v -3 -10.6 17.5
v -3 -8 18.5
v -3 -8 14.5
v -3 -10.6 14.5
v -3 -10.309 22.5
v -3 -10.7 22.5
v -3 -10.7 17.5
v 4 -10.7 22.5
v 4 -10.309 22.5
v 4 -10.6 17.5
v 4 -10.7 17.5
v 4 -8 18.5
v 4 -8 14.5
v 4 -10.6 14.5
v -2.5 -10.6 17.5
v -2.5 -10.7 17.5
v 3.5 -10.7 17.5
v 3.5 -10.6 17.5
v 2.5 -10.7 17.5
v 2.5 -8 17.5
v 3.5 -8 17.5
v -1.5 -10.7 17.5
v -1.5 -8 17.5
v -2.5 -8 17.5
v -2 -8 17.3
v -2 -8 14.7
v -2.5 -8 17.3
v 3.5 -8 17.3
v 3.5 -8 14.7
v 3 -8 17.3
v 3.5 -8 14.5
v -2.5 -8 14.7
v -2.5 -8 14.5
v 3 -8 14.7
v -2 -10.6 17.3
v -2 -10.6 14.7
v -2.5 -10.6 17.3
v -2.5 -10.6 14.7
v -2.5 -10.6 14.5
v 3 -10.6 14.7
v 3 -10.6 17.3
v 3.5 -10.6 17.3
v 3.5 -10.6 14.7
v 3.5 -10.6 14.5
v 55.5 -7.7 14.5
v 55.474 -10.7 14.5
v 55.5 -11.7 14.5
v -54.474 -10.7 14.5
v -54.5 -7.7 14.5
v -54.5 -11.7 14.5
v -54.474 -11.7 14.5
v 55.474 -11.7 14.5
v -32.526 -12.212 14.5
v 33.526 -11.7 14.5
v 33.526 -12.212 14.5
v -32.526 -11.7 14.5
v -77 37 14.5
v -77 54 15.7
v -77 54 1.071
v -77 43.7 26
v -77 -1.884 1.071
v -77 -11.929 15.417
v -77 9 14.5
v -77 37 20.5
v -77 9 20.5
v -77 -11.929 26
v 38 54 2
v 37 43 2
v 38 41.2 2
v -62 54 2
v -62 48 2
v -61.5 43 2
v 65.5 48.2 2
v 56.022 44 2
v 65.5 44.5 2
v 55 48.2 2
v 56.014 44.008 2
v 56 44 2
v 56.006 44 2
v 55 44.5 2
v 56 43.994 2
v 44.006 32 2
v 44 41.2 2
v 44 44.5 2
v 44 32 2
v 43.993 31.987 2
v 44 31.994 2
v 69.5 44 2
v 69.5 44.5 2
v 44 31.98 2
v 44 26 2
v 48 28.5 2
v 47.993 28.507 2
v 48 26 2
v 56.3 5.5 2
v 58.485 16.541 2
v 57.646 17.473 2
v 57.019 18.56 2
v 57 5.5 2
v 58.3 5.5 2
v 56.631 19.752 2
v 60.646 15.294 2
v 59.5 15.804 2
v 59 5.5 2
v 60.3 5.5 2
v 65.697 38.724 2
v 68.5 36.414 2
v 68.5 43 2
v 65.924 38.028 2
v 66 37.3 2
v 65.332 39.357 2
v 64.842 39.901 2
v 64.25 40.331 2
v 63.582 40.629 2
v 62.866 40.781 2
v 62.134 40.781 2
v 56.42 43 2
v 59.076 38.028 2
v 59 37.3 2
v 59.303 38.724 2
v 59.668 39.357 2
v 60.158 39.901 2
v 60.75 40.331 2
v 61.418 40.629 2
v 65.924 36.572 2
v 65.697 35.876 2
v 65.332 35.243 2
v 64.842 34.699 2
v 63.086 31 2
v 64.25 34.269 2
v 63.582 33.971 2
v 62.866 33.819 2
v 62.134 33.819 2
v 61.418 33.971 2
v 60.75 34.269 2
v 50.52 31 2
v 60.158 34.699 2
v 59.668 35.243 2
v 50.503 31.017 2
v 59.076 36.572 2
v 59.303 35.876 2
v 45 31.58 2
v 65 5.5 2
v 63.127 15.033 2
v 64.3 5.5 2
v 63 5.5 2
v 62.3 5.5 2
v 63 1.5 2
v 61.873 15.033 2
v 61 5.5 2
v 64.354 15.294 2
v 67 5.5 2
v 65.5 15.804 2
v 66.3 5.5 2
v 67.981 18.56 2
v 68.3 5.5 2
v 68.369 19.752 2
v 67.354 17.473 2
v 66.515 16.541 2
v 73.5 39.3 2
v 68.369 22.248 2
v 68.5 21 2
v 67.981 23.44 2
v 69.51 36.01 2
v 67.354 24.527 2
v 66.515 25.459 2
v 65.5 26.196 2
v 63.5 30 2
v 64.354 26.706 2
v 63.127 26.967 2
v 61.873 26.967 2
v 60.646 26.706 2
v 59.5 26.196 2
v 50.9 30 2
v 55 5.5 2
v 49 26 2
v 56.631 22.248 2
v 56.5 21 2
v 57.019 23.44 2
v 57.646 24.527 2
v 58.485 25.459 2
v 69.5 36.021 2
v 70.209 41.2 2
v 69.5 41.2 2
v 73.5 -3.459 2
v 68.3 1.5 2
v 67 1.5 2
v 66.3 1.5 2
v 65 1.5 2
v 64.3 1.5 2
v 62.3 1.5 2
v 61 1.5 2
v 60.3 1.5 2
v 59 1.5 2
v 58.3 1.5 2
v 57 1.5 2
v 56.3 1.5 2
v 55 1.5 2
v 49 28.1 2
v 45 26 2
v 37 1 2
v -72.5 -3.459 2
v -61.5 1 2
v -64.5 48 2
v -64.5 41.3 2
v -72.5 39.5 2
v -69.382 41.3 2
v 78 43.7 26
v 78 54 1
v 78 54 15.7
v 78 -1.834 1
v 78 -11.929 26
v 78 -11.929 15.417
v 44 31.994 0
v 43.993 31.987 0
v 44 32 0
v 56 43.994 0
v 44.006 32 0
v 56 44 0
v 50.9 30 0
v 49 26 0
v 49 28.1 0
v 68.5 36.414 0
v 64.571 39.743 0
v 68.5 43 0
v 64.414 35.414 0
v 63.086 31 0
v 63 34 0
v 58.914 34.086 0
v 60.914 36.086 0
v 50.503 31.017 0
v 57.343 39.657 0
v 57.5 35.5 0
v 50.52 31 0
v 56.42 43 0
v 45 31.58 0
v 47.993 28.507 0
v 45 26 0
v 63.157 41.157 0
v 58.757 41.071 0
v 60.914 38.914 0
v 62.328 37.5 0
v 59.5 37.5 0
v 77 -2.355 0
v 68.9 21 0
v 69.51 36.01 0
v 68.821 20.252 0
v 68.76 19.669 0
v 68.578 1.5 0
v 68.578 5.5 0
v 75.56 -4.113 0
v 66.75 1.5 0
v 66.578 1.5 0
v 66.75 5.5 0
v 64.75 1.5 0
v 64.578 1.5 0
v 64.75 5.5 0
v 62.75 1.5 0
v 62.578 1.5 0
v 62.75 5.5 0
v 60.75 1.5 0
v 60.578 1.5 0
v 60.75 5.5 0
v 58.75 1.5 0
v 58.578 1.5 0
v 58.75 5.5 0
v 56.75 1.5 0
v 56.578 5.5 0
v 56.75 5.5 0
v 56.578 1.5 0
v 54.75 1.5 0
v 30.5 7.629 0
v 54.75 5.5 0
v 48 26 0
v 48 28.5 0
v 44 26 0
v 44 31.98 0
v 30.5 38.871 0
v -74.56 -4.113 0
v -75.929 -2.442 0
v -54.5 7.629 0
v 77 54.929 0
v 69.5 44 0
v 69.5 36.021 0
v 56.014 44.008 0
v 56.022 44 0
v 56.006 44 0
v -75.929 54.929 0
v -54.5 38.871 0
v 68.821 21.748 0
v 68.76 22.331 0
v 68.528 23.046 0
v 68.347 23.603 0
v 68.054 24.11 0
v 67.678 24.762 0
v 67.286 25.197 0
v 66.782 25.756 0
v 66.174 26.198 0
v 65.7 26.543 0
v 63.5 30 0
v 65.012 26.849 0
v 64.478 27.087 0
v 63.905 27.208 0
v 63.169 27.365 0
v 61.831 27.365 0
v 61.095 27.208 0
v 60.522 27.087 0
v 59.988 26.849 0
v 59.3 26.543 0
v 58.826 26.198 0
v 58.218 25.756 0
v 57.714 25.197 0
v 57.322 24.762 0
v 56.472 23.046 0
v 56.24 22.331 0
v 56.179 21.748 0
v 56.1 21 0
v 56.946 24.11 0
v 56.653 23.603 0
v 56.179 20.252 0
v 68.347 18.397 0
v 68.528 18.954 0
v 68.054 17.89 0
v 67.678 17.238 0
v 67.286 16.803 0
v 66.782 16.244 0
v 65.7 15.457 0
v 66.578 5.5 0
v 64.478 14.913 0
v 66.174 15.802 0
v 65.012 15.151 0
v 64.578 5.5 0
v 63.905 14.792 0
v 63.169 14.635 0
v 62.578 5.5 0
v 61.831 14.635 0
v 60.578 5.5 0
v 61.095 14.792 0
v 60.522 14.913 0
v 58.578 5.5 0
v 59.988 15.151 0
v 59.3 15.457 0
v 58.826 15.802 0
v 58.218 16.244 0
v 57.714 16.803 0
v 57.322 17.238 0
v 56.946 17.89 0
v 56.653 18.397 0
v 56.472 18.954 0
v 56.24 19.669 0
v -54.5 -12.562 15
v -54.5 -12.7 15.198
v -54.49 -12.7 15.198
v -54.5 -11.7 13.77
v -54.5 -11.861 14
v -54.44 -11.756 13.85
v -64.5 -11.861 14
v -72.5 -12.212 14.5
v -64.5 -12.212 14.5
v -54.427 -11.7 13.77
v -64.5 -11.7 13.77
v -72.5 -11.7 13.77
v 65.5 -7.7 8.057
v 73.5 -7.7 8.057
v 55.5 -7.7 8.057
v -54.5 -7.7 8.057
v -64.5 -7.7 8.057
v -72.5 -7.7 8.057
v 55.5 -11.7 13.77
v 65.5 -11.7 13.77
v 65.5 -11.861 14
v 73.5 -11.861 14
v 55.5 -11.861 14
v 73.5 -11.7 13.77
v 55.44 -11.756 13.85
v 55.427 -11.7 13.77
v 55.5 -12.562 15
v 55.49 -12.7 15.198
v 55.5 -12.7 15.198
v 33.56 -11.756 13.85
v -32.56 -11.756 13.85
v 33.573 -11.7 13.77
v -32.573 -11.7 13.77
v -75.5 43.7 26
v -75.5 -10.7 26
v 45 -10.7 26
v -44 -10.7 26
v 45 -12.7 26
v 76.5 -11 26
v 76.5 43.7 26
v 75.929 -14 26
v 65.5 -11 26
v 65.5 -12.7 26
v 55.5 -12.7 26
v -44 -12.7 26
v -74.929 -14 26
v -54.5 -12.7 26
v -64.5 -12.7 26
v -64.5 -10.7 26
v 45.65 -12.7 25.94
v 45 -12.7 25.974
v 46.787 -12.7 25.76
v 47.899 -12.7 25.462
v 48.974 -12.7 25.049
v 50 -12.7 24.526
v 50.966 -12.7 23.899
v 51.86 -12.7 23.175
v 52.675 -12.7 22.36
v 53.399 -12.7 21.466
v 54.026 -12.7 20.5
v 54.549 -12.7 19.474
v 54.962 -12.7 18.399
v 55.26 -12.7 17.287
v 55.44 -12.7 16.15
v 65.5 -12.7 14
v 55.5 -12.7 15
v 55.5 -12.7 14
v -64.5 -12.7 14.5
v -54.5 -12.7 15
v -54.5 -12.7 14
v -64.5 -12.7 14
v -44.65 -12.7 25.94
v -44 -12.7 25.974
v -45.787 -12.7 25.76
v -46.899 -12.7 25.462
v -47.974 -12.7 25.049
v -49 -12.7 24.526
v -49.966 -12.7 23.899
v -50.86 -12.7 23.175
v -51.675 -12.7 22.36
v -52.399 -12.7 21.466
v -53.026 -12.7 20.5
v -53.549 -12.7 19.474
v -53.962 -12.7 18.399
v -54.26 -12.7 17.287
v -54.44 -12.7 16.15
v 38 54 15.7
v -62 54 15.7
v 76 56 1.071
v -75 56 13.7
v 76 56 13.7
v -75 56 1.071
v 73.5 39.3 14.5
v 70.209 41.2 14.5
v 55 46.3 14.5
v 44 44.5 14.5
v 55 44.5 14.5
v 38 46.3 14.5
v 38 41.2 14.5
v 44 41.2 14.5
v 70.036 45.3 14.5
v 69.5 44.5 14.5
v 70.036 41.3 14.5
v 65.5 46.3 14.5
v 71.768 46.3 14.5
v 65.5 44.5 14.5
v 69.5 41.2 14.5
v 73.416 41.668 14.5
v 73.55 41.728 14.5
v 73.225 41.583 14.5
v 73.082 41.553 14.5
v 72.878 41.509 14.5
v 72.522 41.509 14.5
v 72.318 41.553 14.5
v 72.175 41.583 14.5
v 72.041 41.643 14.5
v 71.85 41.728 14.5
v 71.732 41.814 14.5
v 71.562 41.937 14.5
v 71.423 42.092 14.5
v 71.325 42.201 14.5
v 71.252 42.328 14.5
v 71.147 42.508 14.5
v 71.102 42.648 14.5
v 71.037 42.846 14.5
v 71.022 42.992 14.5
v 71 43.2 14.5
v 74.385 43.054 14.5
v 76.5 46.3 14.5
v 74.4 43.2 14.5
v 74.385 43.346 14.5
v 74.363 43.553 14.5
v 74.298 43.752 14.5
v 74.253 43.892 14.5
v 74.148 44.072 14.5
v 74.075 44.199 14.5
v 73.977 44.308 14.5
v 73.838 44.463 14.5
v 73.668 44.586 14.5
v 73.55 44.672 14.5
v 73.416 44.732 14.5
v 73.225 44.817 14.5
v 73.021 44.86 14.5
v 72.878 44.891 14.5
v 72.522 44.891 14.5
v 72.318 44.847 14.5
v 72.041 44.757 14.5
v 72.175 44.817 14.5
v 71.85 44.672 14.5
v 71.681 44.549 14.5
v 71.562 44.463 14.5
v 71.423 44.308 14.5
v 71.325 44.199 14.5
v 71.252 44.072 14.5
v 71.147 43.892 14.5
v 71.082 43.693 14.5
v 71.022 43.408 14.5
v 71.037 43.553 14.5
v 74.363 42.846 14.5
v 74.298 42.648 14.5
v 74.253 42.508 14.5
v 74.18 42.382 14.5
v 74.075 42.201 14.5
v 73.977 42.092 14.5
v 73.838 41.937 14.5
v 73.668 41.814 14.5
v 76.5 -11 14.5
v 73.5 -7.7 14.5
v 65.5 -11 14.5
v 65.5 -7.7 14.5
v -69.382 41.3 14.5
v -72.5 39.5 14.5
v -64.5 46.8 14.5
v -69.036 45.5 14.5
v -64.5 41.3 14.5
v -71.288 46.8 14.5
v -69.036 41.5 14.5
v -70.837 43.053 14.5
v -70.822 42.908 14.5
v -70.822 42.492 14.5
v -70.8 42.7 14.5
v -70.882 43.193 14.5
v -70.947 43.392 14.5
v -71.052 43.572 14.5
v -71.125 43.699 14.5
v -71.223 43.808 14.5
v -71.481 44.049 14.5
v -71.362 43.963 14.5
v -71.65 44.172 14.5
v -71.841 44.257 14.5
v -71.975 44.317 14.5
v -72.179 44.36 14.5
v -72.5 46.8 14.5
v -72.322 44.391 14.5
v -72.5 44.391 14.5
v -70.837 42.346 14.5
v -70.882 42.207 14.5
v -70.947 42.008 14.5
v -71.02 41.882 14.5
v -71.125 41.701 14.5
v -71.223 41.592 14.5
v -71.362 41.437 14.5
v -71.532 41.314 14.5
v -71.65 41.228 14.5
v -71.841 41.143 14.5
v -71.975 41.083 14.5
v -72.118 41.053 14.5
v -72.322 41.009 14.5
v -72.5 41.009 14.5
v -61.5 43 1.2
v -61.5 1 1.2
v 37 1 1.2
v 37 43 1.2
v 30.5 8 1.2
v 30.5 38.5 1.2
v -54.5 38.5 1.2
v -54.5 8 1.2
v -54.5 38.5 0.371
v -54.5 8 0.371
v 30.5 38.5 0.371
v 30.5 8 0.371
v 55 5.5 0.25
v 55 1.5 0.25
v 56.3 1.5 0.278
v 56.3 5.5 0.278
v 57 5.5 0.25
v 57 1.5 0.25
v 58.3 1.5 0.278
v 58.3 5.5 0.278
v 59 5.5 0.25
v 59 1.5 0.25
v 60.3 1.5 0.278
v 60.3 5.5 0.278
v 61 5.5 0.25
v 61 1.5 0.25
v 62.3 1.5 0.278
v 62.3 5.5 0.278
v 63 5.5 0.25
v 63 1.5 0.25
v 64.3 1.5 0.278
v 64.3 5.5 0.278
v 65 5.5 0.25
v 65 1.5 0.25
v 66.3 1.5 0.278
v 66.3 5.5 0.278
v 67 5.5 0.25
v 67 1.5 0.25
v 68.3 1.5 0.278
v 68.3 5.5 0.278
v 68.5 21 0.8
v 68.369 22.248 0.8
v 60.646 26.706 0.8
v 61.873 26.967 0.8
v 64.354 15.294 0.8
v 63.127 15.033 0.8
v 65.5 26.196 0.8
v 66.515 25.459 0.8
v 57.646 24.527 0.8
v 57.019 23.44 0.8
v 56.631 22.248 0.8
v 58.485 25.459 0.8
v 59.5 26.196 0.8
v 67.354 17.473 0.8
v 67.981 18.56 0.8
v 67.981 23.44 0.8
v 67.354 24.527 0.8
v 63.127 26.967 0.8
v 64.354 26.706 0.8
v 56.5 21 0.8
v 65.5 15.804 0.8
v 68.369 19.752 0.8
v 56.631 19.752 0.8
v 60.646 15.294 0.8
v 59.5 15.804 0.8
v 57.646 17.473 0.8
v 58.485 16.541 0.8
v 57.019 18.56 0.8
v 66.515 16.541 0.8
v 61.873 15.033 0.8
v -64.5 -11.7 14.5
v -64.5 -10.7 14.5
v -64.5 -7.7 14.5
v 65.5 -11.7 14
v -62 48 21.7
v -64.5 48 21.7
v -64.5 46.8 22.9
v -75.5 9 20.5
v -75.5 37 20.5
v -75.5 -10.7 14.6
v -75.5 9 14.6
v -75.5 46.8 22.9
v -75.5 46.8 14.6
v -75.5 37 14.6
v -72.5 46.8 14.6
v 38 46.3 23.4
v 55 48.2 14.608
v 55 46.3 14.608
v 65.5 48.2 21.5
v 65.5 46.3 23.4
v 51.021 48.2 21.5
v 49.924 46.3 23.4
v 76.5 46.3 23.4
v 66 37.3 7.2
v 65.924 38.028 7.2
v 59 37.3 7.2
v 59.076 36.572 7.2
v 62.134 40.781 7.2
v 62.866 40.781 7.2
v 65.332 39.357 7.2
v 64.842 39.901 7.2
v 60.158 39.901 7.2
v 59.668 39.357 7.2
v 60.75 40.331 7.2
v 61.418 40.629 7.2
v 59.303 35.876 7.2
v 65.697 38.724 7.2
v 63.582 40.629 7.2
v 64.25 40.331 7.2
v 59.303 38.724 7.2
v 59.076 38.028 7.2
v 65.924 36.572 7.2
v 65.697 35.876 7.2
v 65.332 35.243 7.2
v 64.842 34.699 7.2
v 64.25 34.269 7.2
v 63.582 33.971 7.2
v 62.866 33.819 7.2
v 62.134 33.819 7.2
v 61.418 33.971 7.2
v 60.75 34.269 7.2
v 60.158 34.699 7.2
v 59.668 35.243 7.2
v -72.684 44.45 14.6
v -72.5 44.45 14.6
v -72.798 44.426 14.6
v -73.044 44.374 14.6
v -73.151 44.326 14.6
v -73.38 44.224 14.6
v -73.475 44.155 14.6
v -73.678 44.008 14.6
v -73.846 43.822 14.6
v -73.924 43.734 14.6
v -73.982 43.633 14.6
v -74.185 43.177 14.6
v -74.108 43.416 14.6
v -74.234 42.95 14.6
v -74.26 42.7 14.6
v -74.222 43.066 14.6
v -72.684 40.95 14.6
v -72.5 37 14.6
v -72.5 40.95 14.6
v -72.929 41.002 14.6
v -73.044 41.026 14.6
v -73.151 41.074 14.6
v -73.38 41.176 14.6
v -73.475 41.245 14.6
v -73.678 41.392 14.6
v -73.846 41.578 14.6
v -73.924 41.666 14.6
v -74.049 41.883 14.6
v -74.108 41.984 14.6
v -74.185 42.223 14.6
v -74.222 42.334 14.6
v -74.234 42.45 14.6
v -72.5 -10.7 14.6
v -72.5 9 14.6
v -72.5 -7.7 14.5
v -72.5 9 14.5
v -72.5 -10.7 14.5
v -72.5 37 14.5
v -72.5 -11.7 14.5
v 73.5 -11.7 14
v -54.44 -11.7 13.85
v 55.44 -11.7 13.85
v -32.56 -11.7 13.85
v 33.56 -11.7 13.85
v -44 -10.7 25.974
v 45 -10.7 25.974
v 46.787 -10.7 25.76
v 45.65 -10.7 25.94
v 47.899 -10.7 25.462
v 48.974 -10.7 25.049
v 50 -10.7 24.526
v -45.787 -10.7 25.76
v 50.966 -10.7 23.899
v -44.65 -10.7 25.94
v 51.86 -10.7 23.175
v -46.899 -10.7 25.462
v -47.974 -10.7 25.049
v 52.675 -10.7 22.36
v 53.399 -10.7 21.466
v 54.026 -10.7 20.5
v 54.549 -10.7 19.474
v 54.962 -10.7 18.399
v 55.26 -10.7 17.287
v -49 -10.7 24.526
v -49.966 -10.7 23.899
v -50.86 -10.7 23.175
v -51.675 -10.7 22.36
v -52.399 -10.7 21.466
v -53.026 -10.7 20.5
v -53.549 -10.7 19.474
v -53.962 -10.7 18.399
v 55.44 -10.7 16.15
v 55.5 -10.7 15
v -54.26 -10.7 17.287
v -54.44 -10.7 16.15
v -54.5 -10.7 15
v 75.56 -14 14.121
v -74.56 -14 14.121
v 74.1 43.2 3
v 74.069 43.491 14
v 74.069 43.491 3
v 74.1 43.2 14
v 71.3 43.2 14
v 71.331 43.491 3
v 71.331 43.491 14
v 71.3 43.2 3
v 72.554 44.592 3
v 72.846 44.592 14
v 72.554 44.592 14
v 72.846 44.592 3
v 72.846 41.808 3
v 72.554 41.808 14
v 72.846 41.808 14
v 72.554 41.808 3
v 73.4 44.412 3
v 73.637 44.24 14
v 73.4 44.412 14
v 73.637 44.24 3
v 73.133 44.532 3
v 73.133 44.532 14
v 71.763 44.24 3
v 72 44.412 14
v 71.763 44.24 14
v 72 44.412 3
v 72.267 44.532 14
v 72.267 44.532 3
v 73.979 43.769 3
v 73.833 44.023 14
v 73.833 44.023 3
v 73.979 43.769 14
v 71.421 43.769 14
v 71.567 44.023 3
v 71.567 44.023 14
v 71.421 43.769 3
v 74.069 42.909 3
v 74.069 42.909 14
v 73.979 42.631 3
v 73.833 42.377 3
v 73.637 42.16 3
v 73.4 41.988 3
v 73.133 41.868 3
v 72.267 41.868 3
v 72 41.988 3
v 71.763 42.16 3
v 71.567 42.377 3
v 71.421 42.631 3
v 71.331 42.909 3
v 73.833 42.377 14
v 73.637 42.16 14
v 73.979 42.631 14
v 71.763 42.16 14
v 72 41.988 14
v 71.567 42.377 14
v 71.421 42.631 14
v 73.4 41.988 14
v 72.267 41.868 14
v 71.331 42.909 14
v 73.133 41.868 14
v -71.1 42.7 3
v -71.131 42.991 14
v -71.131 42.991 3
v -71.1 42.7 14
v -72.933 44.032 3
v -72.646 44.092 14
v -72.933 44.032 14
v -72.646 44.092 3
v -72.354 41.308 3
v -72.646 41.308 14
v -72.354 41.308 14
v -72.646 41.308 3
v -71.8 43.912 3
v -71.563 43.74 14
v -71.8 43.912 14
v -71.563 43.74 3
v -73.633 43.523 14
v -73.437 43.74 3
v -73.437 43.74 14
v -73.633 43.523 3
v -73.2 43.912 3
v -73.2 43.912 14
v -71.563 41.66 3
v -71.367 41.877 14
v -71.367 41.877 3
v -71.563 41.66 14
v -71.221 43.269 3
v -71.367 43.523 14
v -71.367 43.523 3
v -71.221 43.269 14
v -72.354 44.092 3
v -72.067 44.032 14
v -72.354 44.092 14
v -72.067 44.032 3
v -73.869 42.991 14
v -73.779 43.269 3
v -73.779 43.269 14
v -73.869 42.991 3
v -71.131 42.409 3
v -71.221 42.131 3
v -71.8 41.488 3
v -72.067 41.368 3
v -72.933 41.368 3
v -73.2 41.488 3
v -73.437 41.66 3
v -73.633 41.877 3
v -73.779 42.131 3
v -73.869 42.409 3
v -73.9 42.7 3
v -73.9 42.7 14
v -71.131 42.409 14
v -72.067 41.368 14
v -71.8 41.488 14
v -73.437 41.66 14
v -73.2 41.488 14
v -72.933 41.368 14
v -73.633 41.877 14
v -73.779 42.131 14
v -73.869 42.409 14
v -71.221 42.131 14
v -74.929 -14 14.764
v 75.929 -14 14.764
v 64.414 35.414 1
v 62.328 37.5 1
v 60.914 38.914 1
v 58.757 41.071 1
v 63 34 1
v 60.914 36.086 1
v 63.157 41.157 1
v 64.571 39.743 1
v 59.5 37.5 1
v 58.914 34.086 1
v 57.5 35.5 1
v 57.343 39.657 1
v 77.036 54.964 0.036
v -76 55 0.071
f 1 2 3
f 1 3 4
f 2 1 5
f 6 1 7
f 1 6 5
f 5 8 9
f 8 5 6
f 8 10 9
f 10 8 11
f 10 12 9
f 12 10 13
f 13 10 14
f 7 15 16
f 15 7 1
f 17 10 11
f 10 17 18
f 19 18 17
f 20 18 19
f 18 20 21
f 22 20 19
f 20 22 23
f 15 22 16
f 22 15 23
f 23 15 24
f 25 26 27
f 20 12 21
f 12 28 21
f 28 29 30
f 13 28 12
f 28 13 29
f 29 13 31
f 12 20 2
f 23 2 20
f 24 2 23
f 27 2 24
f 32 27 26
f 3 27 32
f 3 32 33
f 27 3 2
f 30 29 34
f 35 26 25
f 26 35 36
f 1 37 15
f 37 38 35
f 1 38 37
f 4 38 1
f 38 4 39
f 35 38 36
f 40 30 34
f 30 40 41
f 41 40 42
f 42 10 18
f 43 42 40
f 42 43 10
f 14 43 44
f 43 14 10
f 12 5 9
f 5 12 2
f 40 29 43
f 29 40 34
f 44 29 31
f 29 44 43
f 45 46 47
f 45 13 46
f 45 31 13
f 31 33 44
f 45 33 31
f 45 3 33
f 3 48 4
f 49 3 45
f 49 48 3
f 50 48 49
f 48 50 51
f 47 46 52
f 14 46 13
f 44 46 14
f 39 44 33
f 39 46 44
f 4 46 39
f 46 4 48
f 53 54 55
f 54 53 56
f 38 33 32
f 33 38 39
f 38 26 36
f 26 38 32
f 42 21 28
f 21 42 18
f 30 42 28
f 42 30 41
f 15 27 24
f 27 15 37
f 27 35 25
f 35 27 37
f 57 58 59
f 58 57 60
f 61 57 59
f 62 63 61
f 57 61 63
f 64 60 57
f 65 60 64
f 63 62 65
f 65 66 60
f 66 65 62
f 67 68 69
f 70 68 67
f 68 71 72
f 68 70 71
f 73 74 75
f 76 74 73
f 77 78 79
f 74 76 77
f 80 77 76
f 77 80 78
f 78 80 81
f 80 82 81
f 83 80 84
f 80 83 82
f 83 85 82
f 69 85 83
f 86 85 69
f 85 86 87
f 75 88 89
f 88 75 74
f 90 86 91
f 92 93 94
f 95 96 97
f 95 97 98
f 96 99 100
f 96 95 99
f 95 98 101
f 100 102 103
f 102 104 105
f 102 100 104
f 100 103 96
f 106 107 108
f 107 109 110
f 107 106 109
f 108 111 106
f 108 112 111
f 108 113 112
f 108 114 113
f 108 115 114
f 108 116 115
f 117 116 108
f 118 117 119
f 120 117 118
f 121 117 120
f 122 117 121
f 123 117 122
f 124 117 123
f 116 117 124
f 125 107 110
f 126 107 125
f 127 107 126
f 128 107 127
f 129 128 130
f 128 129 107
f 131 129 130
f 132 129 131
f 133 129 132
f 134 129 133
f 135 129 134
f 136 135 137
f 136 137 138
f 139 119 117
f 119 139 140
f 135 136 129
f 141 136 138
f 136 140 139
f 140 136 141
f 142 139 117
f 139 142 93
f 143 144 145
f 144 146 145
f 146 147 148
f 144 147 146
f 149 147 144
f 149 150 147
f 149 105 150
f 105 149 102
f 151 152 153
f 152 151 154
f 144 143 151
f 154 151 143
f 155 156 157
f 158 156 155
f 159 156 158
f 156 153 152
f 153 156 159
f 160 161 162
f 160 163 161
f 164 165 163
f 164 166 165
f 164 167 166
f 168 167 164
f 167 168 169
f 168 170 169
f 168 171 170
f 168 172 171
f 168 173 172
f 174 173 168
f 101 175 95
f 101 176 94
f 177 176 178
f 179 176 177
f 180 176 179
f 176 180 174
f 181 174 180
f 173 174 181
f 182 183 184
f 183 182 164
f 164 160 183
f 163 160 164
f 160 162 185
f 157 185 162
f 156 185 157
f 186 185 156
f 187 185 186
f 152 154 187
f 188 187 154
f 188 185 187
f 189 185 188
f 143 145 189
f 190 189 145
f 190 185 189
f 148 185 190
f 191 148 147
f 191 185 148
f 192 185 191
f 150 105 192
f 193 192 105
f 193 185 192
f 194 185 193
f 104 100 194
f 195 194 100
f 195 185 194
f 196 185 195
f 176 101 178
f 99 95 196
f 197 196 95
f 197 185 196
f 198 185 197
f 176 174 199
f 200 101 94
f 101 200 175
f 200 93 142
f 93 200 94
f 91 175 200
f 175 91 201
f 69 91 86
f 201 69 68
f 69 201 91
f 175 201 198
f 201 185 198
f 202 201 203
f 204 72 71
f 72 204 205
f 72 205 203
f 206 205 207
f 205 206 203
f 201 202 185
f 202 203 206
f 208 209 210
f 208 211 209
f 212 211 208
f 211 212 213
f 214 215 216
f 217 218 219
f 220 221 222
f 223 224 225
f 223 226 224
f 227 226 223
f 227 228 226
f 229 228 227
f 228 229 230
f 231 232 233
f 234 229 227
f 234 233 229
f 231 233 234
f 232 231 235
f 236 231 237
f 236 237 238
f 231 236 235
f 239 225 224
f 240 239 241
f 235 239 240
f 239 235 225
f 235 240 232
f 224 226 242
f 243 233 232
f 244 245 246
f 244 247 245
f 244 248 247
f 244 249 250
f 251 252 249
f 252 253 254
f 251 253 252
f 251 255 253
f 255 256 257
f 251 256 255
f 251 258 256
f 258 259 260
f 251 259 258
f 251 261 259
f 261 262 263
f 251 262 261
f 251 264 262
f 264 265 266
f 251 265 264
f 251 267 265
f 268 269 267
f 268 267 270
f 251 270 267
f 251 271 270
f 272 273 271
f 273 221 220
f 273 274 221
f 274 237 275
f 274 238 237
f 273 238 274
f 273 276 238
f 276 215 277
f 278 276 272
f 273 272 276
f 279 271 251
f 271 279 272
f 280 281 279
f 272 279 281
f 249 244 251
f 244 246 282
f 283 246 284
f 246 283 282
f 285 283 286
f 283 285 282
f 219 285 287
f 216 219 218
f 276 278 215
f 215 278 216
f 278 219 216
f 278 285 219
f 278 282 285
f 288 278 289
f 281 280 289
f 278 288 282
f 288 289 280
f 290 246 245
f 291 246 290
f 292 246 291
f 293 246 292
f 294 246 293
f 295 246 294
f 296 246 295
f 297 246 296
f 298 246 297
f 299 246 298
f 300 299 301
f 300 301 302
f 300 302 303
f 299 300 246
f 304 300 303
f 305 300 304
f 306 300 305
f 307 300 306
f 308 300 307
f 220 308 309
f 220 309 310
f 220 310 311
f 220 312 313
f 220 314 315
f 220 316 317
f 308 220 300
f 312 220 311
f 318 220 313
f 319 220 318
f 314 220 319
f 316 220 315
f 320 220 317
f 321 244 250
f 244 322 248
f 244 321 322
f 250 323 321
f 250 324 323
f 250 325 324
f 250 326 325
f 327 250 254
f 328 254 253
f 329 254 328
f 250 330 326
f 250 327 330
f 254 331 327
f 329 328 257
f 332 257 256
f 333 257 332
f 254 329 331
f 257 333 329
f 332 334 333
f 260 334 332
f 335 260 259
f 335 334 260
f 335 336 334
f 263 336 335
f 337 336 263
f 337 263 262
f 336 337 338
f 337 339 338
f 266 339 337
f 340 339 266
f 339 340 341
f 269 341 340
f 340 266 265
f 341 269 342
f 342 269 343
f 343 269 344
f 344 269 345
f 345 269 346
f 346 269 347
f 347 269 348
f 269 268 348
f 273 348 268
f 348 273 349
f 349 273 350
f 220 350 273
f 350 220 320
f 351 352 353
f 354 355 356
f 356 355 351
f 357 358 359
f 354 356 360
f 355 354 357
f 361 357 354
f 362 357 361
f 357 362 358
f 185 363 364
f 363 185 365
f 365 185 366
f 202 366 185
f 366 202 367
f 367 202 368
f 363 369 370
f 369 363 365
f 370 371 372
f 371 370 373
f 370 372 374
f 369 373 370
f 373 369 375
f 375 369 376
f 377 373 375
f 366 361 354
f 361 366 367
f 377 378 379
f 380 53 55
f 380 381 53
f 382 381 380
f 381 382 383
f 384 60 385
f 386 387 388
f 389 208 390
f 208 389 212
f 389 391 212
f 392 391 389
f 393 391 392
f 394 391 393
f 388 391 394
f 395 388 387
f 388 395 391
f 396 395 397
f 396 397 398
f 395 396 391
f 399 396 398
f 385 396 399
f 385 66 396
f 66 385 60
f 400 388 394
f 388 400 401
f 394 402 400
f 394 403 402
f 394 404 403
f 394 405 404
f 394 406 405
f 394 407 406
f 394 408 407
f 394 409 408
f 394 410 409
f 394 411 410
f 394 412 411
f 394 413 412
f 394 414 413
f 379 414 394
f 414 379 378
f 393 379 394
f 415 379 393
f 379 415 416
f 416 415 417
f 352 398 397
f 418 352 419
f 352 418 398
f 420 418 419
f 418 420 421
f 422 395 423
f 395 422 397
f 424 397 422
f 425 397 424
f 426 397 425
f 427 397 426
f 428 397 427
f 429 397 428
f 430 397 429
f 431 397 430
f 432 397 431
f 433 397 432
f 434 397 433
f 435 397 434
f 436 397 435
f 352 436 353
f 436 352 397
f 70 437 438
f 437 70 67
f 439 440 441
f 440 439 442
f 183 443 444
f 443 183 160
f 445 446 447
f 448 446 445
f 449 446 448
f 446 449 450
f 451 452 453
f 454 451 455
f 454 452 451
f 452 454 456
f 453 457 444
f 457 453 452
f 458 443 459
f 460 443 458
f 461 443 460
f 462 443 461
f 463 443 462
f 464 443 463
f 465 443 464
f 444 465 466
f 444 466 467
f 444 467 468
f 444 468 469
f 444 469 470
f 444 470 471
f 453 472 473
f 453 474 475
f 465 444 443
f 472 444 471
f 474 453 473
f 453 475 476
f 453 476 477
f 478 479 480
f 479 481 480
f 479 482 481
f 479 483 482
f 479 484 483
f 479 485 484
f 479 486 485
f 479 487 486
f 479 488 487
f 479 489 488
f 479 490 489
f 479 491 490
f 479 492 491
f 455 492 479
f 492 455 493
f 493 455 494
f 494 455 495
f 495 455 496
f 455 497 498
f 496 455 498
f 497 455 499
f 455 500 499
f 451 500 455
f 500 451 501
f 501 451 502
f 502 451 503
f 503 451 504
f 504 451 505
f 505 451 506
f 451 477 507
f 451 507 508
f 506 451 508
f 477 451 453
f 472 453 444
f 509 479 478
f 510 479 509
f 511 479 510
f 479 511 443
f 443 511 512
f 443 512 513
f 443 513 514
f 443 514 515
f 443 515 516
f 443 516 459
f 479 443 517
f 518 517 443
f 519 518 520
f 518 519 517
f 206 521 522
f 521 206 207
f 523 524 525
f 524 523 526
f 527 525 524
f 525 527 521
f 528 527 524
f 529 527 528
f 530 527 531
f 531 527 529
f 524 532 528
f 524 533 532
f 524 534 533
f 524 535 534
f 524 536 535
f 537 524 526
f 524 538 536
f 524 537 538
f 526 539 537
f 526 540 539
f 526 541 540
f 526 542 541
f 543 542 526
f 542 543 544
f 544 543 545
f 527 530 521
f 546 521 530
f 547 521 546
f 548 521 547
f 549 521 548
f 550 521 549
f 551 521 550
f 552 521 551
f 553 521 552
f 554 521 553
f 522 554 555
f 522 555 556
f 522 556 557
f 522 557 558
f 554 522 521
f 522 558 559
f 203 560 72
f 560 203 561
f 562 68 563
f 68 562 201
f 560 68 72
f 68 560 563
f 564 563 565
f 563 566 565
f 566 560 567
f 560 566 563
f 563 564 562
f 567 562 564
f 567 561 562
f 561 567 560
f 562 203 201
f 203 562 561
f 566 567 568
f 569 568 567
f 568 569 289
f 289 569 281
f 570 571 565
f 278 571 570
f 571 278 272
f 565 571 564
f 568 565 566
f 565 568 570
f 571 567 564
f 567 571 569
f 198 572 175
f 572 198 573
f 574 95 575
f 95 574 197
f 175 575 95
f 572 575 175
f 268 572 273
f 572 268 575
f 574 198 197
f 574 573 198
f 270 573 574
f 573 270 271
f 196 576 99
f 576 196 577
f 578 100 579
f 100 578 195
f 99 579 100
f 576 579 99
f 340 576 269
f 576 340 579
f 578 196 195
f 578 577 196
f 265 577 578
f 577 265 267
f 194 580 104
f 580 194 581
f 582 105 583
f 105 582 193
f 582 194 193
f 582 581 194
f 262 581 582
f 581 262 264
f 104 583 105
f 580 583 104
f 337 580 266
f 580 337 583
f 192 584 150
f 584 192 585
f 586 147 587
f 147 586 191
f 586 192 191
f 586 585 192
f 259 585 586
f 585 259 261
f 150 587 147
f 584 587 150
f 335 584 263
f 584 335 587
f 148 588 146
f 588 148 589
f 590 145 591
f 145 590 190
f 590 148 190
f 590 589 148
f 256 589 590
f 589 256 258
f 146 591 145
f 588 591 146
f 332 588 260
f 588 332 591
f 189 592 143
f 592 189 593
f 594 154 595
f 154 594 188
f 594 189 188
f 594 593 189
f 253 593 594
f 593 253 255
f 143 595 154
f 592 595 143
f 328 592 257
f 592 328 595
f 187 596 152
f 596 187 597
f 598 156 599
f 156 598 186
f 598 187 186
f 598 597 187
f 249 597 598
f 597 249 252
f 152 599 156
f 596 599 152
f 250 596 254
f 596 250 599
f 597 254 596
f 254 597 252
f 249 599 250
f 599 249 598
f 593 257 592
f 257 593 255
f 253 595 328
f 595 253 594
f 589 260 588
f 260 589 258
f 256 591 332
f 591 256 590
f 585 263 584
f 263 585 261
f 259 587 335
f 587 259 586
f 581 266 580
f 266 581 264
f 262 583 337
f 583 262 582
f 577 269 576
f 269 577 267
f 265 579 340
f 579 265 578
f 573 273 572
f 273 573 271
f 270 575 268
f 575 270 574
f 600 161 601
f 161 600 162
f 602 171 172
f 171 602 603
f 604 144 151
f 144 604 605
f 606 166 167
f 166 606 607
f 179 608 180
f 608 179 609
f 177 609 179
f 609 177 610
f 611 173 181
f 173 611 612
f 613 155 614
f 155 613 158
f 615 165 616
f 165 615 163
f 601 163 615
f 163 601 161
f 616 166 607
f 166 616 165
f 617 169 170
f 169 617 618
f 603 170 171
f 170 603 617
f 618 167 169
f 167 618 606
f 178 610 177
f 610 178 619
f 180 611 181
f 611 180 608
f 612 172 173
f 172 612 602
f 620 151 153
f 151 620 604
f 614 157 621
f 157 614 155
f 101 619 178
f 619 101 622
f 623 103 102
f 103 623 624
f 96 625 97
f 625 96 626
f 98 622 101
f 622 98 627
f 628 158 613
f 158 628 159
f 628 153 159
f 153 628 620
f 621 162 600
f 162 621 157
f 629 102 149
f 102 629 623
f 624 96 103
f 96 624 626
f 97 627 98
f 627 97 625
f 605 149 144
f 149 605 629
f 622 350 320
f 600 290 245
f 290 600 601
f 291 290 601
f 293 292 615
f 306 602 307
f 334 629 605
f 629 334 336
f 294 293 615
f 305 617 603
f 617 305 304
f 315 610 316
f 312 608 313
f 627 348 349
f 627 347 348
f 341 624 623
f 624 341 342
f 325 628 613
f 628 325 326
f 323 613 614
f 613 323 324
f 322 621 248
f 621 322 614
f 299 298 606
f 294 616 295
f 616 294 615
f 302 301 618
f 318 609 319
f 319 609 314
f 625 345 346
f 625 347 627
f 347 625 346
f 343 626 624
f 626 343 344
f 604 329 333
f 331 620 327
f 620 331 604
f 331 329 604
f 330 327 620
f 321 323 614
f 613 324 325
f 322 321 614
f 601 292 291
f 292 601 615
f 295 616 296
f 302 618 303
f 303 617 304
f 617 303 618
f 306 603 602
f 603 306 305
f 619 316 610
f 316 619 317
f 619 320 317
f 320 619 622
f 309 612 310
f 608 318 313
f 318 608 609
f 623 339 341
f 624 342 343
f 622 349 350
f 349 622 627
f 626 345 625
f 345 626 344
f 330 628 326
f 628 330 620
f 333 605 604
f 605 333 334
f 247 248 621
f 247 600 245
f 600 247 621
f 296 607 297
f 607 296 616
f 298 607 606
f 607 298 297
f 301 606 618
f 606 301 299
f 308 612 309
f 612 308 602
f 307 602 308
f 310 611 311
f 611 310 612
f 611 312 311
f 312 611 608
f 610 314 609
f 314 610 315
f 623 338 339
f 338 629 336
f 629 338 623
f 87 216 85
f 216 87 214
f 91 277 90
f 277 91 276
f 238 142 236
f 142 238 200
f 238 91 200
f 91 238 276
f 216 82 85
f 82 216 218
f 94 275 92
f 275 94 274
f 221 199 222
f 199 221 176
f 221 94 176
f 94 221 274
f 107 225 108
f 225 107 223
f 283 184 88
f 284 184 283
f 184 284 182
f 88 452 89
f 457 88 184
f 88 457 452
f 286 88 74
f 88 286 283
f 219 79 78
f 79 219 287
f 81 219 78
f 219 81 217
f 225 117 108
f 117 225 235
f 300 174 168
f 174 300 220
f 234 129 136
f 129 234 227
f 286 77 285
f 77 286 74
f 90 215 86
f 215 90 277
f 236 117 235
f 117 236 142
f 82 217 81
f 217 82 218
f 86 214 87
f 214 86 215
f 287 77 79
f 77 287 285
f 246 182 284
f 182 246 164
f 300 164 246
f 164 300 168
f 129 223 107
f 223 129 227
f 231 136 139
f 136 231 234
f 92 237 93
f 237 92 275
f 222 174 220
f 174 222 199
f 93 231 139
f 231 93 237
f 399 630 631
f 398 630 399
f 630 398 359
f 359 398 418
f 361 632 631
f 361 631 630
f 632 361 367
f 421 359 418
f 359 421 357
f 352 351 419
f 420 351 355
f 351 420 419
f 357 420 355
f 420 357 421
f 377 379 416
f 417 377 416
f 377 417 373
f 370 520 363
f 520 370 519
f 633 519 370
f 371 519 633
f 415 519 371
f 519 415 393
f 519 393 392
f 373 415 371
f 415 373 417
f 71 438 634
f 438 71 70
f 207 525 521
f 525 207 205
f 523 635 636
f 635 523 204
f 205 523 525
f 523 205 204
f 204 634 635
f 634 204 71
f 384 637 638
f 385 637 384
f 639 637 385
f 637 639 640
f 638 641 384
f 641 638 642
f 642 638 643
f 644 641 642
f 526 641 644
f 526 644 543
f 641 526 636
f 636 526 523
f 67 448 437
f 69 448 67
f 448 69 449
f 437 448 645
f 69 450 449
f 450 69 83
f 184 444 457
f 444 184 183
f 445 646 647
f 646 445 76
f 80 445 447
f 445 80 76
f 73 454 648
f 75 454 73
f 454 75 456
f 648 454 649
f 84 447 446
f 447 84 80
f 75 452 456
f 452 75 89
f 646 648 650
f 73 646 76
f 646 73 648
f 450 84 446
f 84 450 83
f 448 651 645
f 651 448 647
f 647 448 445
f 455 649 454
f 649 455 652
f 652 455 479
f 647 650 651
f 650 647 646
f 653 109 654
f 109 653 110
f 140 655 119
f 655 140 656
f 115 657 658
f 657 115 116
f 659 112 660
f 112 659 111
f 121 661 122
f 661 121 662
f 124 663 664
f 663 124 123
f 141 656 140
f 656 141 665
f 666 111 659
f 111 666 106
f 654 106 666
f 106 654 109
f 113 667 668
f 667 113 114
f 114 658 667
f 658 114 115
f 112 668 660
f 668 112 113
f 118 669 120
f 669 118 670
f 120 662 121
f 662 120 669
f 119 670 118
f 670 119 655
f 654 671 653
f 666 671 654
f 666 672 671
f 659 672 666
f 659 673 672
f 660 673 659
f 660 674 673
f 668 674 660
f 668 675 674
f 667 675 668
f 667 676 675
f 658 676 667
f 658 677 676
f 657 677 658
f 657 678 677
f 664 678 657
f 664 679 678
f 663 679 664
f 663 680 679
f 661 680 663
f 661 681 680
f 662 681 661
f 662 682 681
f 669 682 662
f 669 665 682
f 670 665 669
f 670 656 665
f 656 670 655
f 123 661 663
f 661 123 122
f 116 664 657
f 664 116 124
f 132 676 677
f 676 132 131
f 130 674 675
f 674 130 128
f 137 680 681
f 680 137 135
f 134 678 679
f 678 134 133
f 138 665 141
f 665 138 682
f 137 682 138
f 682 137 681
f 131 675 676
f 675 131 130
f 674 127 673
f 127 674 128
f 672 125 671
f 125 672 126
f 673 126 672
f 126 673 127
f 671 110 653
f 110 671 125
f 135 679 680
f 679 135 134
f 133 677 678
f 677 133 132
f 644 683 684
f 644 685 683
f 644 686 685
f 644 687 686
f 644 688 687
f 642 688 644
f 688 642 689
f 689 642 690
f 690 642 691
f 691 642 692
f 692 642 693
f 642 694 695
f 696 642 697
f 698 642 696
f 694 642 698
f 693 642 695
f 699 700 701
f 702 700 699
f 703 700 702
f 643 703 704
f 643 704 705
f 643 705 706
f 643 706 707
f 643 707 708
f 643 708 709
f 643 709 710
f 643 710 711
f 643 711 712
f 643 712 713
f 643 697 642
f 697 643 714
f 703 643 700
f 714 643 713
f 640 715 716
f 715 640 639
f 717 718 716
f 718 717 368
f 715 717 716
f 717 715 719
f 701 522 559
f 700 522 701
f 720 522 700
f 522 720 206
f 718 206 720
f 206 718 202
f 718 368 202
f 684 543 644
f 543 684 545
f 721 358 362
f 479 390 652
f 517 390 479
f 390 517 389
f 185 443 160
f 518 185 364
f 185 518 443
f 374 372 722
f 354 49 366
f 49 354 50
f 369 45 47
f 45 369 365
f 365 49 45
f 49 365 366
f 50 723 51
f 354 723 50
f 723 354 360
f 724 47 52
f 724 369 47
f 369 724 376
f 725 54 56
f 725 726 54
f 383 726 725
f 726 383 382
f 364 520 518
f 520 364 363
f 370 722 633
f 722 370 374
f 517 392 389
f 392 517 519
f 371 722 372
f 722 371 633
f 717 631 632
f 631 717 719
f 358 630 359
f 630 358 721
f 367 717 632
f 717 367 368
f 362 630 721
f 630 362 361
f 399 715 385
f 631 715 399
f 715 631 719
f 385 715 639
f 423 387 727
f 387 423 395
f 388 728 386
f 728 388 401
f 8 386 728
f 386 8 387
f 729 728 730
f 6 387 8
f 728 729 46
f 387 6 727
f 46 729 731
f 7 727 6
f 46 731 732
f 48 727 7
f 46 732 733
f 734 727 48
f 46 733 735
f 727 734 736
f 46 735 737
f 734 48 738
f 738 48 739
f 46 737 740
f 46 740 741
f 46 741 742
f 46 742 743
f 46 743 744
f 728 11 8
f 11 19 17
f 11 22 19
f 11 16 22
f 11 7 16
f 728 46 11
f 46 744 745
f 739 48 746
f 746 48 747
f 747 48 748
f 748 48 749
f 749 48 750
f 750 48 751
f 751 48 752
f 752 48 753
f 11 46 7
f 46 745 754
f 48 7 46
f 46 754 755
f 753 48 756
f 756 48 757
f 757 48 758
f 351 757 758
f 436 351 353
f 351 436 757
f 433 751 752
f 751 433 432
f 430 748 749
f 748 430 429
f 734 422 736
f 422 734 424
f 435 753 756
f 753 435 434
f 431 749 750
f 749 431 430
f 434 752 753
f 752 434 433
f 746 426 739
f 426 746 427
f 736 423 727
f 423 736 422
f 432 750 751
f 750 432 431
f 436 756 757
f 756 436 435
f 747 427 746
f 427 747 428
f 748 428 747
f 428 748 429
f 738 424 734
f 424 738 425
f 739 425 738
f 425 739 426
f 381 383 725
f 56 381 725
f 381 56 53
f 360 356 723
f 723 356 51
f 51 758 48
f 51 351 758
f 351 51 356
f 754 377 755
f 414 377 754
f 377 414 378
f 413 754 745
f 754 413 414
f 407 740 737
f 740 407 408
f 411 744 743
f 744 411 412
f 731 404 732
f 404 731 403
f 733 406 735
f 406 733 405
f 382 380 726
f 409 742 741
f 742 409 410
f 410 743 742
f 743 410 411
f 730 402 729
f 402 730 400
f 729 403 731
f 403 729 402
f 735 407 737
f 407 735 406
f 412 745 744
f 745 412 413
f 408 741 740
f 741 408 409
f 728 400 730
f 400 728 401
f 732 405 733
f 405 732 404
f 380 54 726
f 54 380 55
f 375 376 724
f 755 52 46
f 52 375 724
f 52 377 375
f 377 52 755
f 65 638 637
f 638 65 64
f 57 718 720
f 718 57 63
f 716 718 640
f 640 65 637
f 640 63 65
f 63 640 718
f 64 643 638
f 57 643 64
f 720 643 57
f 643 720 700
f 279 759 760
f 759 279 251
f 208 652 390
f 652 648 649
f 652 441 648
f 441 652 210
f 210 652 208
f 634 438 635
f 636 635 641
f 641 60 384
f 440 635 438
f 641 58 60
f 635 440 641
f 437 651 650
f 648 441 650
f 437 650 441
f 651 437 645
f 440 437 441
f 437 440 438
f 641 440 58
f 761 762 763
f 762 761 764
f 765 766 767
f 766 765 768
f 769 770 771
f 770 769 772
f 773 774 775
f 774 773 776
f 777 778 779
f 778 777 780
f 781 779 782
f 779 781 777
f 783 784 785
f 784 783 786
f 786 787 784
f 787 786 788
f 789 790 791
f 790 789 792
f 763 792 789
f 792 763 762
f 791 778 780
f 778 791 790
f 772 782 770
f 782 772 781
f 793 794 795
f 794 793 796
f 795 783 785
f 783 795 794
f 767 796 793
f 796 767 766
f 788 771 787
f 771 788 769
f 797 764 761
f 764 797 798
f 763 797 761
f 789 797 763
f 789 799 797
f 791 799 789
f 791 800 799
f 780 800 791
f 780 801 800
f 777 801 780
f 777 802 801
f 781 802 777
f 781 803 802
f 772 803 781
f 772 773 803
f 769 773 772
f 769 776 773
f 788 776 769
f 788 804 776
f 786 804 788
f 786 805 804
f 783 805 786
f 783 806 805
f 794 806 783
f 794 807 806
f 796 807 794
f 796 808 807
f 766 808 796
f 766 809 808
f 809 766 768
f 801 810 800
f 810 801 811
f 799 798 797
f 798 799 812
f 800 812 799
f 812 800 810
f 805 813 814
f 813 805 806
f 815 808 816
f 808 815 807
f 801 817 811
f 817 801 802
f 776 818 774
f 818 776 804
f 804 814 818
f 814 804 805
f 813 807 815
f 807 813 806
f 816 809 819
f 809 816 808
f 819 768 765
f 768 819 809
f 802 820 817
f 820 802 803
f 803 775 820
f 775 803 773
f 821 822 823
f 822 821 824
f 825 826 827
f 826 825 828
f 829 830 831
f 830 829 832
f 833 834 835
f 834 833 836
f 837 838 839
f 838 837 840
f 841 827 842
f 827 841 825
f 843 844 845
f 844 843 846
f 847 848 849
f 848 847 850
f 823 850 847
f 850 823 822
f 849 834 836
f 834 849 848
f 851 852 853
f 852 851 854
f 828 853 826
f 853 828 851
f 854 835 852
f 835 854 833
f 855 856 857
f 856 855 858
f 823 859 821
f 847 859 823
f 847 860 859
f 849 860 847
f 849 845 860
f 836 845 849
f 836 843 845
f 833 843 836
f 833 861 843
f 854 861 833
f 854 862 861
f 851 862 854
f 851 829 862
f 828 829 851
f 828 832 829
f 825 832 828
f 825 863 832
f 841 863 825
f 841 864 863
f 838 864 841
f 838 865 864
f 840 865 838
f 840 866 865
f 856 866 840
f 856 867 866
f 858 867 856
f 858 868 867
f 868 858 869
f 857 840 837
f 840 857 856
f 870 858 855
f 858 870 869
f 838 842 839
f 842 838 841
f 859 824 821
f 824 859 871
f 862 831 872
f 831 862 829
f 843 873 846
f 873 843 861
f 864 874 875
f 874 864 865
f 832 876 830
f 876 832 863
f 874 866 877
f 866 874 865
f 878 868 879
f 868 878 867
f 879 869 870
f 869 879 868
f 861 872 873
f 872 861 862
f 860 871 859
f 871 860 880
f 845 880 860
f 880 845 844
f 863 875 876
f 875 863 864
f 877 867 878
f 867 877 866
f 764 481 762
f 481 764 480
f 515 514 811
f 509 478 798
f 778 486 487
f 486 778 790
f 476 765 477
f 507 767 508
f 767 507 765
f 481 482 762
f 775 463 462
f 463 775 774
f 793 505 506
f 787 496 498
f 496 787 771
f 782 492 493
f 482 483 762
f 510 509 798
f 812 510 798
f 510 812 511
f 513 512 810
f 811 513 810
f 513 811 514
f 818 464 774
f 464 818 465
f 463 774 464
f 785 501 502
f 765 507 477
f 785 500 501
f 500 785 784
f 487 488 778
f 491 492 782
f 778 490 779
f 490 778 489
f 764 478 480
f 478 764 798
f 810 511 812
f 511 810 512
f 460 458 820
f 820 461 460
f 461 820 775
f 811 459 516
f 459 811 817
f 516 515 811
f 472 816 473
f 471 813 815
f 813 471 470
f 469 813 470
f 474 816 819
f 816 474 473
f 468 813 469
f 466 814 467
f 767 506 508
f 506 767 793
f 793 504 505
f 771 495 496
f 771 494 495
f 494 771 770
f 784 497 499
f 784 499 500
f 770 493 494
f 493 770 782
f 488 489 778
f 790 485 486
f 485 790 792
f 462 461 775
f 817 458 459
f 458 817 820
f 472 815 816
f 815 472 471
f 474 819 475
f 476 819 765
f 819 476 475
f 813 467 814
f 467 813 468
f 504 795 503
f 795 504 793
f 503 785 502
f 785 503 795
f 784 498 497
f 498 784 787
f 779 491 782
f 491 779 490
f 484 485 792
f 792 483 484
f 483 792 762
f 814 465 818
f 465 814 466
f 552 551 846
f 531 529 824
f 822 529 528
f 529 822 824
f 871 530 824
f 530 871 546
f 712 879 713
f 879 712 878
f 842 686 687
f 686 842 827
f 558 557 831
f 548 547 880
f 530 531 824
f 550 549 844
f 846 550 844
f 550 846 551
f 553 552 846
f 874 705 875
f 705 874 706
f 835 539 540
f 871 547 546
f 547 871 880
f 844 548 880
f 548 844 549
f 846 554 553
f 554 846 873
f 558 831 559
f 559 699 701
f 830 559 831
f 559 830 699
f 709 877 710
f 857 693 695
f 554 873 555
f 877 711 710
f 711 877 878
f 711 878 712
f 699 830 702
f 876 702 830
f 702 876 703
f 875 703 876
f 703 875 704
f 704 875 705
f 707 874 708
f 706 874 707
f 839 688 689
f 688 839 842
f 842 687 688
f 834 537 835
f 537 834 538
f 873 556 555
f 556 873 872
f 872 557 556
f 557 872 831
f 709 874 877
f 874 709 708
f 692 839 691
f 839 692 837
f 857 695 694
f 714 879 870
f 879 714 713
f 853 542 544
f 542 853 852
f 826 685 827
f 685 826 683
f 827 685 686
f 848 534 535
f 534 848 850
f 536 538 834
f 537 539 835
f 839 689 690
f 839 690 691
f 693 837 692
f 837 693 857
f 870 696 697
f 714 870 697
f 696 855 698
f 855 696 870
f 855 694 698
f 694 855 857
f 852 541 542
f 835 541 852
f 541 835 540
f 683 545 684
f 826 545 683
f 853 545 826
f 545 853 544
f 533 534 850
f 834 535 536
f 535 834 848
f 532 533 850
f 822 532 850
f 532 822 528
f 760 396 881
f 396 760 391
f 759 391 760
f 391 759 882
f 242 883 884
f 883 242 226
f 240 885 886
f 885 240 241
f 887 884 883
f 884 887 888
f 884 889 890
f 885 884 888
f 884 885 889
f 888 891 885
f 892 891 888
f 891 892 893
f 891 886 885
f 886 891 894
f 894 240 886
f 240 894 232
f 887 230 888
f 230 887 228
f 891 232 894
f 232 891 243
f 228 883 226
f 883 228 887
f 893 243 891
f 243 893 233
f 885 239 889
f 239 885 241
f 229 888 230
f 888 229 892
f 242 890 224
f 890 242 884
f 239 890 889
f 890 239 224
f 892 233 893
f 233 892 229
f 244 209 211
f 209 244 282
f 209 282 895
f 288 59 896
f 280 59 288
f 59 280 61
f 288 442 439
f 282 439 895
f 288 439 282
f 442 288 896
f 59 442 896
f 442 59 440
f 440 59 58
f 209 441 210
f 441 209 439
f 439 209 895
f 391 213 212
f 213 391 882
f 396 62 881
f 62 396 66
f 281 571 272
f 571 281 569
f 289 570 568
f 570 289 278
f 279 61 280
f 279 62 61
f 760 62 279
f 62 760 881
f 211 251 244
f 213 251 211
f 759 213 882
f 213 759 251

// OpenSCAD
// PRUSA iteration3
// LCD cover
// GNU GPL v3
// Josef Průša <iam@josefprusa.cz> and contributors
// http://www.reprap.org/wiki/Prusa_Mendel
// http://prusamendel.org


module main_body(){
difference() {
union() {
    // main body
    translate( [ -77 , -4.5 , 0 ] ) cube( [ 155 , 59.8 , 2 ] ); 
    translate( [ -77 , -4.5 , 0 ] ) rotate([35,0,0]) cube( [ 155 , 2 , 20.08 ] );
    translate( [ -77 , -14.7 , 14.2 ] )  cube( [ 155 , 2 , 11.8 ] );
    translate( [ -77 , 54 , 0 ] ) cube( [ 155 , 2 , 17 ] );
    
    // M3 hole body
    translate( [ 73.5 , 43.3 , 0.5 ] ) rotate([0,0,90])  cylinder( h = 14, r = 4, $fn=6);  
    translate( [ -72.5 , 43.5 , 0.5 ] ) rotate([0,0,90])  cylinder( h = 14, r = 4, $fn=6);  
    
}
translate( [ -61.5 , 1 , 1.2 ] ) cube( [ 98.5 , 42 , 10 ] );  // LCD window
translate( [ -54.5 , 8 , -1 ] ) cube( [ 85 , 30.5 , 10 ] );  // LCD window


// buzzer holes
translate( [ 55 , 1.5 , -1 ] ) cube( [ 1.3 , 4 , 10 ] );  
translate( [ 57 , 1.5 , -1 ] ) cube( [ 1.3 , 4 , 10 ] );  
translate( [ 59 , 1.5 , -1 ] ) cube( [ 1.3 , 4 , 10 ] );  
translate( [ 61 , 1.5 , -1 ] ) cube( [ 1.3 , 4 , 10 ] );  
translate( [ 63 , 1.5 , -1 ] ) cube( [ 1.3 , 4 , 10 ] );  
translate( [ 65 , 1.5 , -1 ] ) cube( [ 1.3 , 4 , 10 ] );  
translate( [ 67 , 1.5 , -1 ] ) cube( [ 1.3 , 4 , 10 ] );  

// buzzer holes corners
translate( [ 66.25 , 1.5 , -0.5 ] ) rotate([0,45,0]) cube( [ 2 , 4 , 2 ] );  
translate( [ 64.25 , 1.5 , -0.5 ] ) rotate([0,45,0]) cube( [ 2 , 4 , 2 ] );  
translate( [ 62.25 , 1.5 , -0.5 ] ) rotate([0,45,0]) cube( [ 2 , 4 , 2 ] );  
translate( [ 60.25 , 1.5 , -0.5 ] ) rotate([0,45,0]) cube( [ 2 , 4 , 2 ] );  
translate( [ 58.25 , 1.5 , -0.5 ] ) rotate([0,45,0]) cube( [ 2 , 4 , 2 ] );  
translate( [ 56.25 , 1.5 , -0.5 ] ) rotate([0,45,0]) cube( [ 2 , 4 , 2 ] );  
translate( [ 54.25 , 1.5 , -0.5 ] ) rotate([0,45,0]) cube( [ 2 , 4 , 2 ] );  

// knob hole
translate( [ 62.5 , 21 , -1 ] ) cylinder( h = 10, r = 6, $fn=30);
translate( [ 62.5 , 21 , -1.2 ] ) cylinder( h = 2, r1 = 7, r2 = 6, $fn=30);

// reset button cutout
translate( [ 44 , 26 , -1 ] ) cube( [ 1 , 6 , 9 ] );  
translate( [ 48 , 26 , -1 ] ) cube( [ 1 , 2.5 , 9 ] );  
translate( [ 68.5 , 36 , -1 ] ) cube( [ 1 , 8 , 9 ] );  
translate( [ 56 , 43 , -1 ] ) cube( [ 13.5 , 1 , 9 ] ); 
translate( [ 50.5 , 30 , -1 ] ) cube( [ 13 , 1 , 9 ] ); 
translate( [ 44.7 , 31.28 , -1 ] ) rotate([0,0,45]) cube( [ 17 , 1 , 9 ] );  
translate( [ 63.5 , 30 , -1 ] ) rotate([0,0,45]) cube( [ 8.5 , 1 , 9 ] );  
translate( [ 48.7 , 27.8 , -1 ] ) rotate([0,0,45]) cube( [ 3.55 , 1 , 9 ] );

// rear support cutout
translate( [ -64.5 , -12.7 , 14 ] ) cube( [ 10 , 3 , 16 ] );  
translate( [ 55.5 , -12.7 , 14 ] ) cube( [ 10 , 3 , 16 ] );  

}
}

module pcb_clip(){
    difference(){
    union(){
    translate( [ -3 , -12 , 17.5 ] ) cube( [ 7 , 4 , 5 ] ); 
    translate( [ -3 , -10.6 , 12.5 ] ) cube( [ 1 , 2.6 , 7 ] );  
    translate( [ 3 , -10.6 , 12.5 ] ) cube( [ 1 , 2.6 , 7 ] );  
        }
    translate( [ -4 , -8 , 18.5 ] ) rotate([30,0,0]) cube( [ 10 , 6 , 6 ] );  
   
    translate( [ 2.5 , -12 , 14.5 ] ) cube( [ 1 , 4 , 0.2 ] );  
    translate( [ -2.5 , -12 , 14.5 ] ) cube( [ 1 , 4 , 0.2 ] );  
    translate( [ 2.5 , -12 , 17.3 ] ) cube( [ 1 , 4 , 0.2 ] );  
    translate( [ -2.5 , -12 , 17.3 ] ) cube( [ 1 , 4 , 0.2 ] );          
}
}



difference()
{
union()
{

pcb_clip();

main_body();
// reset button
translate( [ 62.5 , 37.3 , 0 ] ) cylinder( h = 7.2, r = 3.5, $fn=30); 

//left side
translate( [ -77 , -14.7 , 0 ] ) cube( [ 1.5 , 70.7 , 26 ] );  
translate( [ -76.5 , -15 , 0 ] ) cube( [ 4 , 70 , 14.6 ] );  

//right side
translate( [ 76.5 , -14.7 , 0 ] ) cube( [ 1.5 , 70.7 , 26 ] ); 
translate( [ 73.5 , -14 , 0 ] ) cube( [ 4 , 70 , 14.5 ] );  

//rear side reinforcement
translate( [ -54.5 , -11.7 , 8 ] ) cube( [ 110 , 4 , 6.5 ] );  
translate( [ 65.5 , -11.7 , 8 ] ) cube( [ 12 , 4 , 6.5 ] );  
translate( [ 65.5 , -13 , 14 ] ) cube( [ 12 , 2 , 12 ] );  
translate( [ -76.5 , -11.7 , 8 ] ) cube( [ 12 , 4 , 6.5 ] );  
translate( [ -76.5 , -14.7 , 14.5 ] ) cube( [ 12 , 4 , 11.5 ] );  
translate( [ -44 , -14.7 , 14.5 ] ) cube( [ 89 , 4 , 11.5 ] );  
translate( [ -43.5 , -10.7 , 15 ] ) rotate([90,0,0]) cylinder( h = 2, r = 11, $fn=60);  
translate( [ 44.5 , -10.7 , 15 ] ) rotate([90,0,0]) cylinder( h = 2, r = 11, $fn=60);  


//front left side reinforcement
difference()
{
    union(){
        translate( [ -77 , 41.3 , 0 ] ) cube( [ 15 , 14 , 25 ] );  
        translate( [ -77 , 46.3 , 14 ] ) cube( [ 15 , 9 , 3 ] );  
        }
    translate( [ -64.5 , 40 , -3 ] ) cube( [ 4 , 8 , 40 ] );  
    translate( [ -75.5 , 40.3 , 14.5 ] ) cube( [15 , 6.5 , 25 ] ); 
}


//front right side reinforcement
difference(){
translate( [ 38 , 41.2 , 0 ] ) cube( [ 40 , 14 , 26 ] );  
translate( [ 55 , 44.5 , 0 ] ) cube( [ 10.5 , 3.7 , 30 ] );  
translate( [ 44 , 39.5 , 0 ] ) cube( [ 25.5 , 5 , 30 ] );  
translate( [ 35 , 39.3 , 14.5 ] ) cube( [ 42.5 , 7 , 15 ] );  

translate( [ 49 , 43.2 , 25 ] ) rotate([0,60,0]) cube( [ 12 , 5 , 10 ] );  
    

}
}

// SD card opening
translate( [ -80 , 9 , 14.5 ] ) cube( [ 10 , 28 , 6 ] );  

// front and rear angle
translate( [ -81 , -9.3 , -17 ] ) rotate([35,0,0]) cube( [ 164 , 14 , 54.08 ] );  
translate( [ -78 , 72.7 , -3 ] ) rotate([45,0,0]) cube( [ 160 , 14 , 54.08 ] );  

// M3 screw thread
translate( [ 72.7 , 43.2 , 3 ] ) cylinder( h = 20, r = 1.4, $fn=30);  
translate( [ -72.5 , 42.7 , 3 ] ) cylinder( h = 20, r = 1.4, $fn=30); 
translate( [ 72.7 , 43.2 , 14 ] ) cylinder( h = 1, r1 = 1.4, r2=2, $fn=30);  
translate( [ -72.5 , 42.7 , 14 ] ) cylinder( h = 1, r = 1.4, r2=2, $fn=30); 


// ORIGINAL PRUSA text
//translate([-67,52,0.6]) rotate([180,0,0]) linear_extrude(height = 2) 
//{ text("ORIGINAL",font = "helvetica:style=Bold", size=7, center=true); }

//translate([-18,52,0.6]) rotate([180,0,0]) linear_extrude(height = 2) 
//{ text("PRUSA",font = "helvetica:style=Bold", size=11, center=true); }

//translate( [ -66 , 41.5 , -0.4 ] )  cube( [ 45 , 1.6 , 1 ] );  
//translate( [ -66 , 42.3 , -0.4 ] ) cylinder( h = 1, r = 0.8, $fn=30);  
//translate( [ -21 , 42.3 , -0.4 ] ) cylinder( h = 1, r = 0.8, $fn=30);  

// front cleanup
translate( [ -100 , -64 , 0 ] ) cube( [ 200 , 50 , 50 ] ); 

// X sign on reset button
translate( [ 63 , 34 , -1 ] ) rotate([0,0,45]) cube( [ 2, 8, 2 ] );  
translate( [ 57.5 , 35.5 , -1 ] ) rotate([0,0,-45]) cube( [ 2, 8, 2 ] );  


// corners
translate( [ 76 , -5 , -1 ] ) rotate([0,45,0]) cube( [ 5, 80, 5 ] );  
translate( [ -82 , -5 , -1 ] ) rotate([0,45,0]) cube( [ 5, 80, 5 ] );  
translate( [ -82 , 58 , -4 ] ) rotate([45,0,0]) cube( [ 200, 5, 5 ] );  
translate( [ -77 , 54 , -4 ] ) rotate([0,0,45]) cube( [ 5, 5, 50 ] );  
translate( [ 78 , 54 , -4 ] ) rotate([0,0,45]) cube( [ 5, 5, 50 ] );  
translate( [ 78 , -19 , -4 ] ) rotate([0,0,45]) cube( [ 5, 5, 50 ] );  
translate( [ -77 , -19 , -4 ] ) rotate([0,0,45]) cube( [ 5, 5, 50 ] );  

// LCD corners
translate( [ -54.5 , 9.5 , -5.2 ] ) rotate([45,0,0]) cube( [ 85 , 5 , 5 ] );  // LCD window
translate( [ -54.5 , 37 , -5.2 ] ) rotate([45,0,0]) cube( [ 85 , 5 , 5 ] );  // LCD window

rotate([35,0,0]) translate( [ -78 , -7 , -4 ] ) rotate([0,0,45]) cube( [ 5, 5, 50 ] );  
rotate([35,0,0]) translate( [ 79 , -7 , -4 ] ) rotate([0,0,45]) cube( [ 5, 5, 50 ] );  

}
